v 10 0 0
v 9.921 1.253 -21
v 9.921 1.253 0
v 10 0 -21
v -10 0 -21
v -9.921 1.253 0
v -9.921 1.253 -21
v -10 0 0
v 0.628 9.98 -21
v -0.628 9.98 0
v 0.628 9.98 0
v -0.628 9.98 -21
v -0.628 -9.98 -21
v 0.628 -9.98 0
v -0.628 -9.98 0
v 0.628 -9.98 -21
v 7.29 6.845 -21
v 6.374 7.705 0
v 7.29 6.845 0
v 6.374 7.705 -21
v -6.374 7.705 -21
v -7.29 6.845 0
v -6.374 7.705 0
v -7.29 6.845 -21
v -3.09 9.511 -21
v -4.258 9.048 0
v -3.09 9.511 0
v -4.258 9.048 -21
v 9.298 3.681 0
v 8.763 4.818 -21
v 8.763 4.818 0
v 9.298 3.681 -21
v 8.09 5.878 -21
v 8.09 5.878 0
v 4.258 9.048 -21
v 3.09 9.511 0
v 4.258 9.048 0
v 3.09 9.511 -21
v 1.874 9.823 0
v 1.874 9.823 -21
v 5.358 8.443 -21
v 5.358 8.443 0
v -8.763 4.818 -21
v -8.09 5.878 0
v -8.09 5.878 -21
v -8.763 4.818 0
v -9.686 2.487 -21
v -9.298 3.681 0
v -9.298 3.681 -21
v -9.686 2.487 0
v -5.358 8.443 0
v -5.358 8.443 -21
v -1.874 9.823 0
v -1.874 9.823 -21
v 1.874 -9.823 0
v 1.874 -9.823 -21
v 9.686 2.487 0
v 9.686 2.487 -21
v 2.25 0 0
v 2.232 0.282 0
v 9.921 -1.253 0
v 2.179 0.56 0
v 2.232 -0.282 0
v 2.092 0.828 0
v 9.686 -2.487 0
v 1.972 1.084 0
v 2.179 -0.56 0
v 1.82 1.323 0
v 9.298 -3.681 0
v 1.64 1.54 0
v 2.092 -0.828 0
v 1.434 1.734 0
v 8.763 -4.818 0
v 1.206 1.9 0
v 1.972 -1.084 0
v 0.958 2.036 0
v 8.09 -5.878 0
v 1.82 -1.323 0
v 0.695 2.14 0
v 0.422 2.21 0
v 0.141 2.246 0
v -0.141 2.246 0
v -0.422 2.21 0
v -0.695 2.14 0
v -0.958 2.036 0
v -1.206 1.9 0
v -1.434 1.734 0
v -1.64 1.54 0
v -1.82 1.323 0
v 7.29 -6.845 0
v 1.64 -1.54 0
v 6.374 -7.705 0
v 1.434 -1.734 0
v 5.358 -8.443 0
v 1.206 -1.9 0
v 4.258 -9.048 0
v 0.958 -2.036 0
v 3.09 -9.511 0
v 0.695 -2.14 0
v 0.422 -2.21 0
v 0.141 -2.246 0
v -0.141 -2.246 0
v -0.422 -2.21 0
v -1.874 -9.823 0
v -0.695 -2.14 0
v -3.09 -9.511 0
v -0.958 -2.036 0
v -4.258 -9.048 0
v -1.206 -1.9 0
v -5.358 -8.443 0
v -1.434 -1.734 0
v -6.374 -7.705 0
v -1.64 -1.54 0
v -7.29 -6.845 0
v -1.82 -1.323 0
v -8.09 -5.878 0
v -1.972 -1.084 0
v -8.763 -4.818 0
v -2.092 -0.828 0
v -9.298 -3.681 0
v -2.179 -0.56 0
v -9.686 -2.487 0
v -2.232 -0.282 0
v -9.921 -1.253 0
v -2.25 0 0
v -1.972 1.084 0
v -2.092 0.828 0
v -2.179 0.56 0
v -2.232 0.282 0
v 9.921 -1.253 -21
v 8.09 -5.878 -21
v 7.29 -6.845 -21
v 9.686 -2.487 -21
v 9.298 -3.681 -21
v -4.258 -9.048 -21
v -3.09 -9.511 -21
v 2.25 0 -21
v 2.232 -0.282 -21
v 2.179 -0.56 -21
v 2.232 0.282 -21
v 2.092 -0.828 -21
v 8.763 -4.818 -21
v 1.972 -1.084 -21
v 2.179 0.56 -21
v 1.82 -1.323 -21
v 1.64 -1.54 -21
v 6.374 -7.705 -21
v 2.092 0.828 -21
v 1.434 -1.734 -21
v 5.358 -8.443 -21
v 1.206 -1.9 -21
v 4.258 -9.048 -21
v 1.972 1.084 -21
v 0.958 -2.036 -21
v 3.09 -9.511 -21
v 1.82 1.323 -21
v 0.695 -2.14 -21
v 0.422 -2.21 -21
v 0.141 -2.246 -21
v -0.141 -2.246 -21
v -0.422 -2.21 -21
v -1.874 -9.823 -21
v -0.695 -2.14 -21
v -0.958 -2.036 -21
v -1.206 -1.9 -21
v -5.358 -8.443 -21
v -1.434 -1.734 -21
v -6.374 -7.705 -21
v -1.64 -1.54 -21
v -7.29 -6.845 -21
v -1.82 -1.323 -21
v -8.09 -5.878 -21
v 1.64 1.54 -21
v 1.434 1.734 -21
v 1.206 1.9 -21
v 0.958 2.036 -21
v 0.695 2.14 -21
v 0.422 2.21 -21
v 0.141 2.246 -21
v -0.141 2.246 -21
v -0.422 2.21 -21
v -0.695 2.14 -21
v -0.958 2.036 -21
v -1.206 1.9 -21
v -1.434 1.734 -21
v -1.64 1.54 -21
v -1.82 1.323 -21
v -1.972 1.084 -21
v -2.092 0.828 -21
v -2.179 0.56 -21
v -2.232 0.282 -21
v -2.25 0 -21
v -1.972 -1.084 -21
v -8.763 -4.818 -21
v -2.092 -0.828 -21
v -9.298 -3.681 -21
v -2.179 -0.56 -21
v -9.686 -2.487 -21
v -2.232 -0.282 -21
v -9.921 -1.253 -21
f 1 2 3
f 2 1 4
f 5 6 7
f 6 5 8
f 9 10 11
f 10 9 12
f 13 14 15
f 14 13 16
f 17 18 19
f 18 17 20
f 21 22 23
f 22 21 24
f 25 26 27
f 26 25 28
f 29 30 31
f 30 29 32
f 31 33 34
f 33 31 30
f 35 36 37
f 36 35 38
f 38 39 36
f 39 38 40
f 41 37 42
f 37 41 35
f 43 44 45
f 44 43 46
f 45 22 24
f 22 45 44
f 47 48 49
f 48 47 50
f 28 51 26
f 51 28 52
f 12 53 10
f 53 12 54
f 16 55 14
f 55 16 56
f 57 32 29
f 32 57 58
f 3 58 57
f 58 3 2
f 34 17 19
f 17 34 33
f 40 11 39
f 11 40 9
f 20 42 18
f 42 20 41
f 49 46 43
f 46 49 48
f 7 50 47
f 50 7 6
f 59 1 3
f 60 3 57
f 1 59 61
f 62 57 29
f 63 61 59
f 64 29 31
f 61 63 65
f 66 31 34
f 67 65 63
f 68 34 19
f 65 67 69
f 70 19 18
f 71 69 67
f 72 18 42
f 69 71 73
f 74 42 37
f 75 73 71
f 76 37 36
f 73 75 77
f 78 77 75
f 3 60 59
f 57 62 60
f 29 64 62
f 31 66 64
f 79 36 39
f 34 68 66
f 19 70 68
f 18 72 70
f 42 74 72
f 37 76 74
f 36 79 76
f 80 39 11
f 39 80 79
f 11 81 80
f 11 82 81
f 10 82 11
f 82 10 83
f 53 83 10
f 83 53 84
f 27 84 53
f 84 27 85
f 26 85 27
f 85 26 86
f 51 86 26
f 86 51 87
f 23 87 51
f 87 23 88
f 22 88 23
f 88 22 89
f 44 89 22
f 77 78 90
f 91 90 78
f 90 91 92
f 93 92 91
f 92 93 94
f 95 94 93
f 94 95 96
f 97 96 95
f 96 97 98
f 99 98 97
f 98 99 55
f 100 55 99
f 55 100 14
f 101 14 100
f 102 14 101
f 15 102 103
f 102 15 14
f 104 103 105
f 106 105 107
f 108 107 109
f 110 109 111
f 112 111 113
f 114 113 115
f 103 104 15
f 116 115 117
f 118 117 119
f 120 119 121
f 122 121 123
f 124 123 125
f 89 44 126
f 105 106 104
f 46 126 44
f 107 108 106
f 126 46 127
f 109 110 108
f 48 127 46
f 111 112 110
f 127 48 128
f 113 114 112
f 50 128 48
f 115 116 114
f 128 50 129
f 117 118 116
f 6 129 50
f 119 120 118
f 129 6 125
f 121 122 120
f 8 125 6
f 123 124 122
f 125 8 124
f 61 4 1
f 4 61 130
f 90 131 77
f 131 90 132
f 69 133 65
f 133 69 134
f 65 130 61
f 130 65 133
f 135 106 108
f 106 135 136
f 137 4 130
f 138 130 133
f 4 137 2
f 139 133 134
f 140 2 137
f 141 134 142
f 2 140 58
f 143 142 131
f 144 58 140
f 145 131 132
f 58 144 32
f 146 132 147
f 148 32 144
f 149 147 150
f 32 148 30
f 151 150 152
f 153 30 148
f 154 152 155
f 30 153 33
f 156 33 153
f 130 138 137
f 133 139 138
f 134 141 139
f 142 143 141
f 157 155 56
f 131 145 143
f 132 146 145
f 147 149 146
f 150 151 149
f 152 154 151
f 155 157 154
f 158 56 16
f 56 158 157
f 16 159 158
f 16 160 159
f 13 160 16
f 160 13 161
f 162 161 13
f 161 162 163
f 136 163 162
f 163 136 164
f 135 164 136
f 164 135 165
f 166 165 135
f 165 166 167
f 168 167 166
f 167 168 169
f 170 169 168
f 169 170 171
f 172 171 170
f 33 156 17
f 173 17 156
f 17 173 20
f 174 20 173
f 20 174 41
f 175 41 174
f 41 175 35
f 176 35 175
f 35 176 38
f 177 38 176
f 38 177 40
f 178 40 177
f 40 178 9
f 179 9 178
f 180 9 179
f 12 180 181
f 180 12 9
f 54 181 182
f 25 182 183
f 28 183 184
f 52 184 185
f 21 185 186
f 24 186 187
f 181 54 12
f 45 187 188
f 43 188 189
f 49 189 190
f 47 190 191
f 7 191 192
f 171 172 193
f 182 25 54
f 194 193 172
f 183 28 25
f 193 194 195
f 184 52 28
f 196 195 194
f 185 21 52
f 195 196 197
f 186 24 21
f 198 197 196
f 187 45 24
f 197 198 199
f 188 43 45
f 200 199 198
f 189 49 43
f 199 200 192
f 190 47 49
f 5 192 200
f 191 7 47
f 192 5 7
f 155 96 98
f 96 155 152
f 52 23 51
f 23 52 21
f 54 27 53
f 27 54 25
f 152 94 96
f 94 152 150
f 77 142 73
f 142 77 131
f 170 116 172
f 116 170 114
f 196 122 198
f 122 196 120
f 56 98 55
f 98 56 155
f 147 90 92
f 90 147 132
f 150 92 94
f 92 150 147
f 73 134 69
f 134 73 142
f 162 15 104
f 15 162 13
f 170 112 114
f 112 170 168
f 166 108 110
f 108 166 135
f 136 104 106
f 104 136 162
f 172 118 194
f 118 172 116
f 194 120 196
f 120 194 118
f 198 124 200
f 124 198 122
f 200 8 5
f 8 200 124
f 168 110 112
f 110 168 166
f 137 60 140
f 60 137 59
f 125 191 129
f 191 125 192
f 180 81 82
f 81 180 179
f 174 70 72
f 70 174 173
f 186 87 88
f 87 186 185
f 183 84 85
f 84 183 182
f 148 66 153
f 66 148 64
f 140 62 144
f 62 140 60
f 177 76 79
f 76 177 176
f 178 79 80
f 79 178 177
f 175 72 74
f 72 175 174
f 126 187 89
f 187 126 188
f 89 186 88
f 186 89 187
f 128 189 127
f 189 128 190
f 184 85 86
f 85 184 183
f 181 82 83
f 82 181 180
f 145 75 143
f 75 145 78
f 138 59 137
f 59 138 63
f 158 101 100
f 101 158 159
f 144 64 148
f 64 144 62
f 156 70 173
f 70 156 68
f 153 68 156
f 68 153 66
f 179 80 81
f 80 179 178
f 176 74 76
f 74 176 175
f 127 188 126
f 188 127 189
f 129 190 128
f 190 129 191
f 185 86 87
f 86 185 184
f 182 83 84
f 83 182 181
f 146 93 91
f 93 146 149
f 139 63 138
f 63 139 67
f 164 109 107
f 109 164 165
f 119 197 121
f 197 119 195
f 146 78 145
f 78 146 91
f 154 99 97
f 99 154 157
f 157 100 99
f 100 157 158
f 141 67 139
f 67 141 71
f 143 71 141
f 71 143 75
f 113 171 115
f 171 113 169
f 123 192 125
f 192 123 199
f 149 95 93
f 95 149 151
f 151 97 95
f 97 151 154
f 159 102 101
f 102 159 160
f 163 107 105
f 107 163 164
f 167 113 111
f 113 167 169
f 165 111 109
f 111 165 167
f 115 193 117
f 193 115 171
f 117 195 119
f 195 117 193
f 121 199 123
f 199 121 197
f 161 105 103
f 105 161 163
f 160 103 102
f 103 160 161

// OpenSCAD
$fn = 50;


difference() {
	union() {
		translate(v = [0, 0, -21.0000000000]) {
			cylinder(h = 21, r = 10.0000000000);
		}
		cylinder(h = 0, r = 20.0000000000);
	}
	union() {
		#translate(v = [0, 0, -21]) {
			cylinder(h = 21, r = 2.2500000000);
		}
	}
}
